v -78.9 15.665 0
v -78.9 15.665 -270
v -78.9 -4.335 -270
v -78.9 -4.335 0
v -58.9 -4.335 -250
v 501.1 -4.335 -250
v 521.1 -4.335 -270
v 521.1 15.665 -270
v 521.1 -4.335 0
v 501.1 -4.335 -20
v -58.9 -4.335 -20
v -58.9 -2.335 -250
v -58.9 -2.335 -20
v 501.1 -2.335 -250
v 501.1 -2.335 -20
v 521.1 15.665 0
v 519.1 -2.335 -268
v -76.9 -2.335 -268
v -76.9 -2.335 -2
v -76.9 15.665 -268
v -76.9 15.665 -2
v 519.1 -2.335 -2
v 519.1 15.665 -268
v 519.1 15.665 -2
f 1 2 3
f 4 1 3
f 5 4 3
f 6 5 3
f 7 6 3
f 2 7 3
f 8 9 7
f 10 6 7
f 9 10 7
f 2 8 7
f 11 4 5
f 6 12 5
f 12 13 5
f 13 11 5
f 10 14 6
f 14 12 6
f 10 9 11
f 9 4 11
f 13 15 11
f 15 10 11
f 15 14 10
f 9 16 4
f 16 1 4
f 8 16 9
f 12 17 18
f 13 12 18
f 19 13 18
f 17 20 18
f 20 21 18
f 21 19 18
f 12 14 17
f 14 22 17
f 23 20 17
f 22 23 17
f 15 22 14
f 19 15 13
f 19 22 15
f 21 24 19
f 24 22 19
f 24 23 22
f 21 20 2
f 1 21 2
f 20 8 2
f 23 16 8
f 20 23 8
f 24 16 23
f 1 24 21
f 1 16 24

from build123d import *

# Parameters (mm, degrees)
SKETCH1_W           = 600
SKETCH1_H           = 20
BOSS_EXTRUDE1_DEPTH = 270
CUT_EXTRUDE1_DEPTH  = 18
CUT_EXTRUDE2_DEPTH  = 2


with BuildPart() as part:
    # Sketch1 → Boss-Extrude1 (new body)
    with BuildSketch(Plane.XY):
        with Locations((221.099899989, 5.665003505)):
            Rectangle(SKETCH1_W, SKETCH1_H)
    extrude(amount=-BOSS_EXTRUDE1_DEPTH)

    # 3DSketch1 → Cut-Extrude1 (cut)
    with BuildSketch(Plane(origin=(519.099899989, 15.665003505, -268), x_dir=(-0.9131786164814929, 0, 0.4075595838659012), z_dir=(0, 1, 0))):
        Polygon((0, 0), (544.254455423, -242.905511984), (652.665304731, 0), (108.410849308, 242.905511984), align=None)
    extrude(amount=-CUT_EXTRUDE1_DEPTH, mode=Mode.SUBTRACT)

    # 3DSketch2 → Cut-Extrude2 (cut)
    with BuildSketch(Plane(origin=(-58.900100011, -2.334996495, -250), x_dir=(0.9250198183784529, 0, 0.3799188539768646), z_dir=(0, 1, 0))):
        Polygon((0, 0), (518.011098292, 212.754558227), (605.392434707, 0), (87.381336415, -212.754558227), align=None)
    extrude(amount=-CUT_EXTRUDE2_DEPTH, mode=Mode.SUBTRACT)


solid = part.part
